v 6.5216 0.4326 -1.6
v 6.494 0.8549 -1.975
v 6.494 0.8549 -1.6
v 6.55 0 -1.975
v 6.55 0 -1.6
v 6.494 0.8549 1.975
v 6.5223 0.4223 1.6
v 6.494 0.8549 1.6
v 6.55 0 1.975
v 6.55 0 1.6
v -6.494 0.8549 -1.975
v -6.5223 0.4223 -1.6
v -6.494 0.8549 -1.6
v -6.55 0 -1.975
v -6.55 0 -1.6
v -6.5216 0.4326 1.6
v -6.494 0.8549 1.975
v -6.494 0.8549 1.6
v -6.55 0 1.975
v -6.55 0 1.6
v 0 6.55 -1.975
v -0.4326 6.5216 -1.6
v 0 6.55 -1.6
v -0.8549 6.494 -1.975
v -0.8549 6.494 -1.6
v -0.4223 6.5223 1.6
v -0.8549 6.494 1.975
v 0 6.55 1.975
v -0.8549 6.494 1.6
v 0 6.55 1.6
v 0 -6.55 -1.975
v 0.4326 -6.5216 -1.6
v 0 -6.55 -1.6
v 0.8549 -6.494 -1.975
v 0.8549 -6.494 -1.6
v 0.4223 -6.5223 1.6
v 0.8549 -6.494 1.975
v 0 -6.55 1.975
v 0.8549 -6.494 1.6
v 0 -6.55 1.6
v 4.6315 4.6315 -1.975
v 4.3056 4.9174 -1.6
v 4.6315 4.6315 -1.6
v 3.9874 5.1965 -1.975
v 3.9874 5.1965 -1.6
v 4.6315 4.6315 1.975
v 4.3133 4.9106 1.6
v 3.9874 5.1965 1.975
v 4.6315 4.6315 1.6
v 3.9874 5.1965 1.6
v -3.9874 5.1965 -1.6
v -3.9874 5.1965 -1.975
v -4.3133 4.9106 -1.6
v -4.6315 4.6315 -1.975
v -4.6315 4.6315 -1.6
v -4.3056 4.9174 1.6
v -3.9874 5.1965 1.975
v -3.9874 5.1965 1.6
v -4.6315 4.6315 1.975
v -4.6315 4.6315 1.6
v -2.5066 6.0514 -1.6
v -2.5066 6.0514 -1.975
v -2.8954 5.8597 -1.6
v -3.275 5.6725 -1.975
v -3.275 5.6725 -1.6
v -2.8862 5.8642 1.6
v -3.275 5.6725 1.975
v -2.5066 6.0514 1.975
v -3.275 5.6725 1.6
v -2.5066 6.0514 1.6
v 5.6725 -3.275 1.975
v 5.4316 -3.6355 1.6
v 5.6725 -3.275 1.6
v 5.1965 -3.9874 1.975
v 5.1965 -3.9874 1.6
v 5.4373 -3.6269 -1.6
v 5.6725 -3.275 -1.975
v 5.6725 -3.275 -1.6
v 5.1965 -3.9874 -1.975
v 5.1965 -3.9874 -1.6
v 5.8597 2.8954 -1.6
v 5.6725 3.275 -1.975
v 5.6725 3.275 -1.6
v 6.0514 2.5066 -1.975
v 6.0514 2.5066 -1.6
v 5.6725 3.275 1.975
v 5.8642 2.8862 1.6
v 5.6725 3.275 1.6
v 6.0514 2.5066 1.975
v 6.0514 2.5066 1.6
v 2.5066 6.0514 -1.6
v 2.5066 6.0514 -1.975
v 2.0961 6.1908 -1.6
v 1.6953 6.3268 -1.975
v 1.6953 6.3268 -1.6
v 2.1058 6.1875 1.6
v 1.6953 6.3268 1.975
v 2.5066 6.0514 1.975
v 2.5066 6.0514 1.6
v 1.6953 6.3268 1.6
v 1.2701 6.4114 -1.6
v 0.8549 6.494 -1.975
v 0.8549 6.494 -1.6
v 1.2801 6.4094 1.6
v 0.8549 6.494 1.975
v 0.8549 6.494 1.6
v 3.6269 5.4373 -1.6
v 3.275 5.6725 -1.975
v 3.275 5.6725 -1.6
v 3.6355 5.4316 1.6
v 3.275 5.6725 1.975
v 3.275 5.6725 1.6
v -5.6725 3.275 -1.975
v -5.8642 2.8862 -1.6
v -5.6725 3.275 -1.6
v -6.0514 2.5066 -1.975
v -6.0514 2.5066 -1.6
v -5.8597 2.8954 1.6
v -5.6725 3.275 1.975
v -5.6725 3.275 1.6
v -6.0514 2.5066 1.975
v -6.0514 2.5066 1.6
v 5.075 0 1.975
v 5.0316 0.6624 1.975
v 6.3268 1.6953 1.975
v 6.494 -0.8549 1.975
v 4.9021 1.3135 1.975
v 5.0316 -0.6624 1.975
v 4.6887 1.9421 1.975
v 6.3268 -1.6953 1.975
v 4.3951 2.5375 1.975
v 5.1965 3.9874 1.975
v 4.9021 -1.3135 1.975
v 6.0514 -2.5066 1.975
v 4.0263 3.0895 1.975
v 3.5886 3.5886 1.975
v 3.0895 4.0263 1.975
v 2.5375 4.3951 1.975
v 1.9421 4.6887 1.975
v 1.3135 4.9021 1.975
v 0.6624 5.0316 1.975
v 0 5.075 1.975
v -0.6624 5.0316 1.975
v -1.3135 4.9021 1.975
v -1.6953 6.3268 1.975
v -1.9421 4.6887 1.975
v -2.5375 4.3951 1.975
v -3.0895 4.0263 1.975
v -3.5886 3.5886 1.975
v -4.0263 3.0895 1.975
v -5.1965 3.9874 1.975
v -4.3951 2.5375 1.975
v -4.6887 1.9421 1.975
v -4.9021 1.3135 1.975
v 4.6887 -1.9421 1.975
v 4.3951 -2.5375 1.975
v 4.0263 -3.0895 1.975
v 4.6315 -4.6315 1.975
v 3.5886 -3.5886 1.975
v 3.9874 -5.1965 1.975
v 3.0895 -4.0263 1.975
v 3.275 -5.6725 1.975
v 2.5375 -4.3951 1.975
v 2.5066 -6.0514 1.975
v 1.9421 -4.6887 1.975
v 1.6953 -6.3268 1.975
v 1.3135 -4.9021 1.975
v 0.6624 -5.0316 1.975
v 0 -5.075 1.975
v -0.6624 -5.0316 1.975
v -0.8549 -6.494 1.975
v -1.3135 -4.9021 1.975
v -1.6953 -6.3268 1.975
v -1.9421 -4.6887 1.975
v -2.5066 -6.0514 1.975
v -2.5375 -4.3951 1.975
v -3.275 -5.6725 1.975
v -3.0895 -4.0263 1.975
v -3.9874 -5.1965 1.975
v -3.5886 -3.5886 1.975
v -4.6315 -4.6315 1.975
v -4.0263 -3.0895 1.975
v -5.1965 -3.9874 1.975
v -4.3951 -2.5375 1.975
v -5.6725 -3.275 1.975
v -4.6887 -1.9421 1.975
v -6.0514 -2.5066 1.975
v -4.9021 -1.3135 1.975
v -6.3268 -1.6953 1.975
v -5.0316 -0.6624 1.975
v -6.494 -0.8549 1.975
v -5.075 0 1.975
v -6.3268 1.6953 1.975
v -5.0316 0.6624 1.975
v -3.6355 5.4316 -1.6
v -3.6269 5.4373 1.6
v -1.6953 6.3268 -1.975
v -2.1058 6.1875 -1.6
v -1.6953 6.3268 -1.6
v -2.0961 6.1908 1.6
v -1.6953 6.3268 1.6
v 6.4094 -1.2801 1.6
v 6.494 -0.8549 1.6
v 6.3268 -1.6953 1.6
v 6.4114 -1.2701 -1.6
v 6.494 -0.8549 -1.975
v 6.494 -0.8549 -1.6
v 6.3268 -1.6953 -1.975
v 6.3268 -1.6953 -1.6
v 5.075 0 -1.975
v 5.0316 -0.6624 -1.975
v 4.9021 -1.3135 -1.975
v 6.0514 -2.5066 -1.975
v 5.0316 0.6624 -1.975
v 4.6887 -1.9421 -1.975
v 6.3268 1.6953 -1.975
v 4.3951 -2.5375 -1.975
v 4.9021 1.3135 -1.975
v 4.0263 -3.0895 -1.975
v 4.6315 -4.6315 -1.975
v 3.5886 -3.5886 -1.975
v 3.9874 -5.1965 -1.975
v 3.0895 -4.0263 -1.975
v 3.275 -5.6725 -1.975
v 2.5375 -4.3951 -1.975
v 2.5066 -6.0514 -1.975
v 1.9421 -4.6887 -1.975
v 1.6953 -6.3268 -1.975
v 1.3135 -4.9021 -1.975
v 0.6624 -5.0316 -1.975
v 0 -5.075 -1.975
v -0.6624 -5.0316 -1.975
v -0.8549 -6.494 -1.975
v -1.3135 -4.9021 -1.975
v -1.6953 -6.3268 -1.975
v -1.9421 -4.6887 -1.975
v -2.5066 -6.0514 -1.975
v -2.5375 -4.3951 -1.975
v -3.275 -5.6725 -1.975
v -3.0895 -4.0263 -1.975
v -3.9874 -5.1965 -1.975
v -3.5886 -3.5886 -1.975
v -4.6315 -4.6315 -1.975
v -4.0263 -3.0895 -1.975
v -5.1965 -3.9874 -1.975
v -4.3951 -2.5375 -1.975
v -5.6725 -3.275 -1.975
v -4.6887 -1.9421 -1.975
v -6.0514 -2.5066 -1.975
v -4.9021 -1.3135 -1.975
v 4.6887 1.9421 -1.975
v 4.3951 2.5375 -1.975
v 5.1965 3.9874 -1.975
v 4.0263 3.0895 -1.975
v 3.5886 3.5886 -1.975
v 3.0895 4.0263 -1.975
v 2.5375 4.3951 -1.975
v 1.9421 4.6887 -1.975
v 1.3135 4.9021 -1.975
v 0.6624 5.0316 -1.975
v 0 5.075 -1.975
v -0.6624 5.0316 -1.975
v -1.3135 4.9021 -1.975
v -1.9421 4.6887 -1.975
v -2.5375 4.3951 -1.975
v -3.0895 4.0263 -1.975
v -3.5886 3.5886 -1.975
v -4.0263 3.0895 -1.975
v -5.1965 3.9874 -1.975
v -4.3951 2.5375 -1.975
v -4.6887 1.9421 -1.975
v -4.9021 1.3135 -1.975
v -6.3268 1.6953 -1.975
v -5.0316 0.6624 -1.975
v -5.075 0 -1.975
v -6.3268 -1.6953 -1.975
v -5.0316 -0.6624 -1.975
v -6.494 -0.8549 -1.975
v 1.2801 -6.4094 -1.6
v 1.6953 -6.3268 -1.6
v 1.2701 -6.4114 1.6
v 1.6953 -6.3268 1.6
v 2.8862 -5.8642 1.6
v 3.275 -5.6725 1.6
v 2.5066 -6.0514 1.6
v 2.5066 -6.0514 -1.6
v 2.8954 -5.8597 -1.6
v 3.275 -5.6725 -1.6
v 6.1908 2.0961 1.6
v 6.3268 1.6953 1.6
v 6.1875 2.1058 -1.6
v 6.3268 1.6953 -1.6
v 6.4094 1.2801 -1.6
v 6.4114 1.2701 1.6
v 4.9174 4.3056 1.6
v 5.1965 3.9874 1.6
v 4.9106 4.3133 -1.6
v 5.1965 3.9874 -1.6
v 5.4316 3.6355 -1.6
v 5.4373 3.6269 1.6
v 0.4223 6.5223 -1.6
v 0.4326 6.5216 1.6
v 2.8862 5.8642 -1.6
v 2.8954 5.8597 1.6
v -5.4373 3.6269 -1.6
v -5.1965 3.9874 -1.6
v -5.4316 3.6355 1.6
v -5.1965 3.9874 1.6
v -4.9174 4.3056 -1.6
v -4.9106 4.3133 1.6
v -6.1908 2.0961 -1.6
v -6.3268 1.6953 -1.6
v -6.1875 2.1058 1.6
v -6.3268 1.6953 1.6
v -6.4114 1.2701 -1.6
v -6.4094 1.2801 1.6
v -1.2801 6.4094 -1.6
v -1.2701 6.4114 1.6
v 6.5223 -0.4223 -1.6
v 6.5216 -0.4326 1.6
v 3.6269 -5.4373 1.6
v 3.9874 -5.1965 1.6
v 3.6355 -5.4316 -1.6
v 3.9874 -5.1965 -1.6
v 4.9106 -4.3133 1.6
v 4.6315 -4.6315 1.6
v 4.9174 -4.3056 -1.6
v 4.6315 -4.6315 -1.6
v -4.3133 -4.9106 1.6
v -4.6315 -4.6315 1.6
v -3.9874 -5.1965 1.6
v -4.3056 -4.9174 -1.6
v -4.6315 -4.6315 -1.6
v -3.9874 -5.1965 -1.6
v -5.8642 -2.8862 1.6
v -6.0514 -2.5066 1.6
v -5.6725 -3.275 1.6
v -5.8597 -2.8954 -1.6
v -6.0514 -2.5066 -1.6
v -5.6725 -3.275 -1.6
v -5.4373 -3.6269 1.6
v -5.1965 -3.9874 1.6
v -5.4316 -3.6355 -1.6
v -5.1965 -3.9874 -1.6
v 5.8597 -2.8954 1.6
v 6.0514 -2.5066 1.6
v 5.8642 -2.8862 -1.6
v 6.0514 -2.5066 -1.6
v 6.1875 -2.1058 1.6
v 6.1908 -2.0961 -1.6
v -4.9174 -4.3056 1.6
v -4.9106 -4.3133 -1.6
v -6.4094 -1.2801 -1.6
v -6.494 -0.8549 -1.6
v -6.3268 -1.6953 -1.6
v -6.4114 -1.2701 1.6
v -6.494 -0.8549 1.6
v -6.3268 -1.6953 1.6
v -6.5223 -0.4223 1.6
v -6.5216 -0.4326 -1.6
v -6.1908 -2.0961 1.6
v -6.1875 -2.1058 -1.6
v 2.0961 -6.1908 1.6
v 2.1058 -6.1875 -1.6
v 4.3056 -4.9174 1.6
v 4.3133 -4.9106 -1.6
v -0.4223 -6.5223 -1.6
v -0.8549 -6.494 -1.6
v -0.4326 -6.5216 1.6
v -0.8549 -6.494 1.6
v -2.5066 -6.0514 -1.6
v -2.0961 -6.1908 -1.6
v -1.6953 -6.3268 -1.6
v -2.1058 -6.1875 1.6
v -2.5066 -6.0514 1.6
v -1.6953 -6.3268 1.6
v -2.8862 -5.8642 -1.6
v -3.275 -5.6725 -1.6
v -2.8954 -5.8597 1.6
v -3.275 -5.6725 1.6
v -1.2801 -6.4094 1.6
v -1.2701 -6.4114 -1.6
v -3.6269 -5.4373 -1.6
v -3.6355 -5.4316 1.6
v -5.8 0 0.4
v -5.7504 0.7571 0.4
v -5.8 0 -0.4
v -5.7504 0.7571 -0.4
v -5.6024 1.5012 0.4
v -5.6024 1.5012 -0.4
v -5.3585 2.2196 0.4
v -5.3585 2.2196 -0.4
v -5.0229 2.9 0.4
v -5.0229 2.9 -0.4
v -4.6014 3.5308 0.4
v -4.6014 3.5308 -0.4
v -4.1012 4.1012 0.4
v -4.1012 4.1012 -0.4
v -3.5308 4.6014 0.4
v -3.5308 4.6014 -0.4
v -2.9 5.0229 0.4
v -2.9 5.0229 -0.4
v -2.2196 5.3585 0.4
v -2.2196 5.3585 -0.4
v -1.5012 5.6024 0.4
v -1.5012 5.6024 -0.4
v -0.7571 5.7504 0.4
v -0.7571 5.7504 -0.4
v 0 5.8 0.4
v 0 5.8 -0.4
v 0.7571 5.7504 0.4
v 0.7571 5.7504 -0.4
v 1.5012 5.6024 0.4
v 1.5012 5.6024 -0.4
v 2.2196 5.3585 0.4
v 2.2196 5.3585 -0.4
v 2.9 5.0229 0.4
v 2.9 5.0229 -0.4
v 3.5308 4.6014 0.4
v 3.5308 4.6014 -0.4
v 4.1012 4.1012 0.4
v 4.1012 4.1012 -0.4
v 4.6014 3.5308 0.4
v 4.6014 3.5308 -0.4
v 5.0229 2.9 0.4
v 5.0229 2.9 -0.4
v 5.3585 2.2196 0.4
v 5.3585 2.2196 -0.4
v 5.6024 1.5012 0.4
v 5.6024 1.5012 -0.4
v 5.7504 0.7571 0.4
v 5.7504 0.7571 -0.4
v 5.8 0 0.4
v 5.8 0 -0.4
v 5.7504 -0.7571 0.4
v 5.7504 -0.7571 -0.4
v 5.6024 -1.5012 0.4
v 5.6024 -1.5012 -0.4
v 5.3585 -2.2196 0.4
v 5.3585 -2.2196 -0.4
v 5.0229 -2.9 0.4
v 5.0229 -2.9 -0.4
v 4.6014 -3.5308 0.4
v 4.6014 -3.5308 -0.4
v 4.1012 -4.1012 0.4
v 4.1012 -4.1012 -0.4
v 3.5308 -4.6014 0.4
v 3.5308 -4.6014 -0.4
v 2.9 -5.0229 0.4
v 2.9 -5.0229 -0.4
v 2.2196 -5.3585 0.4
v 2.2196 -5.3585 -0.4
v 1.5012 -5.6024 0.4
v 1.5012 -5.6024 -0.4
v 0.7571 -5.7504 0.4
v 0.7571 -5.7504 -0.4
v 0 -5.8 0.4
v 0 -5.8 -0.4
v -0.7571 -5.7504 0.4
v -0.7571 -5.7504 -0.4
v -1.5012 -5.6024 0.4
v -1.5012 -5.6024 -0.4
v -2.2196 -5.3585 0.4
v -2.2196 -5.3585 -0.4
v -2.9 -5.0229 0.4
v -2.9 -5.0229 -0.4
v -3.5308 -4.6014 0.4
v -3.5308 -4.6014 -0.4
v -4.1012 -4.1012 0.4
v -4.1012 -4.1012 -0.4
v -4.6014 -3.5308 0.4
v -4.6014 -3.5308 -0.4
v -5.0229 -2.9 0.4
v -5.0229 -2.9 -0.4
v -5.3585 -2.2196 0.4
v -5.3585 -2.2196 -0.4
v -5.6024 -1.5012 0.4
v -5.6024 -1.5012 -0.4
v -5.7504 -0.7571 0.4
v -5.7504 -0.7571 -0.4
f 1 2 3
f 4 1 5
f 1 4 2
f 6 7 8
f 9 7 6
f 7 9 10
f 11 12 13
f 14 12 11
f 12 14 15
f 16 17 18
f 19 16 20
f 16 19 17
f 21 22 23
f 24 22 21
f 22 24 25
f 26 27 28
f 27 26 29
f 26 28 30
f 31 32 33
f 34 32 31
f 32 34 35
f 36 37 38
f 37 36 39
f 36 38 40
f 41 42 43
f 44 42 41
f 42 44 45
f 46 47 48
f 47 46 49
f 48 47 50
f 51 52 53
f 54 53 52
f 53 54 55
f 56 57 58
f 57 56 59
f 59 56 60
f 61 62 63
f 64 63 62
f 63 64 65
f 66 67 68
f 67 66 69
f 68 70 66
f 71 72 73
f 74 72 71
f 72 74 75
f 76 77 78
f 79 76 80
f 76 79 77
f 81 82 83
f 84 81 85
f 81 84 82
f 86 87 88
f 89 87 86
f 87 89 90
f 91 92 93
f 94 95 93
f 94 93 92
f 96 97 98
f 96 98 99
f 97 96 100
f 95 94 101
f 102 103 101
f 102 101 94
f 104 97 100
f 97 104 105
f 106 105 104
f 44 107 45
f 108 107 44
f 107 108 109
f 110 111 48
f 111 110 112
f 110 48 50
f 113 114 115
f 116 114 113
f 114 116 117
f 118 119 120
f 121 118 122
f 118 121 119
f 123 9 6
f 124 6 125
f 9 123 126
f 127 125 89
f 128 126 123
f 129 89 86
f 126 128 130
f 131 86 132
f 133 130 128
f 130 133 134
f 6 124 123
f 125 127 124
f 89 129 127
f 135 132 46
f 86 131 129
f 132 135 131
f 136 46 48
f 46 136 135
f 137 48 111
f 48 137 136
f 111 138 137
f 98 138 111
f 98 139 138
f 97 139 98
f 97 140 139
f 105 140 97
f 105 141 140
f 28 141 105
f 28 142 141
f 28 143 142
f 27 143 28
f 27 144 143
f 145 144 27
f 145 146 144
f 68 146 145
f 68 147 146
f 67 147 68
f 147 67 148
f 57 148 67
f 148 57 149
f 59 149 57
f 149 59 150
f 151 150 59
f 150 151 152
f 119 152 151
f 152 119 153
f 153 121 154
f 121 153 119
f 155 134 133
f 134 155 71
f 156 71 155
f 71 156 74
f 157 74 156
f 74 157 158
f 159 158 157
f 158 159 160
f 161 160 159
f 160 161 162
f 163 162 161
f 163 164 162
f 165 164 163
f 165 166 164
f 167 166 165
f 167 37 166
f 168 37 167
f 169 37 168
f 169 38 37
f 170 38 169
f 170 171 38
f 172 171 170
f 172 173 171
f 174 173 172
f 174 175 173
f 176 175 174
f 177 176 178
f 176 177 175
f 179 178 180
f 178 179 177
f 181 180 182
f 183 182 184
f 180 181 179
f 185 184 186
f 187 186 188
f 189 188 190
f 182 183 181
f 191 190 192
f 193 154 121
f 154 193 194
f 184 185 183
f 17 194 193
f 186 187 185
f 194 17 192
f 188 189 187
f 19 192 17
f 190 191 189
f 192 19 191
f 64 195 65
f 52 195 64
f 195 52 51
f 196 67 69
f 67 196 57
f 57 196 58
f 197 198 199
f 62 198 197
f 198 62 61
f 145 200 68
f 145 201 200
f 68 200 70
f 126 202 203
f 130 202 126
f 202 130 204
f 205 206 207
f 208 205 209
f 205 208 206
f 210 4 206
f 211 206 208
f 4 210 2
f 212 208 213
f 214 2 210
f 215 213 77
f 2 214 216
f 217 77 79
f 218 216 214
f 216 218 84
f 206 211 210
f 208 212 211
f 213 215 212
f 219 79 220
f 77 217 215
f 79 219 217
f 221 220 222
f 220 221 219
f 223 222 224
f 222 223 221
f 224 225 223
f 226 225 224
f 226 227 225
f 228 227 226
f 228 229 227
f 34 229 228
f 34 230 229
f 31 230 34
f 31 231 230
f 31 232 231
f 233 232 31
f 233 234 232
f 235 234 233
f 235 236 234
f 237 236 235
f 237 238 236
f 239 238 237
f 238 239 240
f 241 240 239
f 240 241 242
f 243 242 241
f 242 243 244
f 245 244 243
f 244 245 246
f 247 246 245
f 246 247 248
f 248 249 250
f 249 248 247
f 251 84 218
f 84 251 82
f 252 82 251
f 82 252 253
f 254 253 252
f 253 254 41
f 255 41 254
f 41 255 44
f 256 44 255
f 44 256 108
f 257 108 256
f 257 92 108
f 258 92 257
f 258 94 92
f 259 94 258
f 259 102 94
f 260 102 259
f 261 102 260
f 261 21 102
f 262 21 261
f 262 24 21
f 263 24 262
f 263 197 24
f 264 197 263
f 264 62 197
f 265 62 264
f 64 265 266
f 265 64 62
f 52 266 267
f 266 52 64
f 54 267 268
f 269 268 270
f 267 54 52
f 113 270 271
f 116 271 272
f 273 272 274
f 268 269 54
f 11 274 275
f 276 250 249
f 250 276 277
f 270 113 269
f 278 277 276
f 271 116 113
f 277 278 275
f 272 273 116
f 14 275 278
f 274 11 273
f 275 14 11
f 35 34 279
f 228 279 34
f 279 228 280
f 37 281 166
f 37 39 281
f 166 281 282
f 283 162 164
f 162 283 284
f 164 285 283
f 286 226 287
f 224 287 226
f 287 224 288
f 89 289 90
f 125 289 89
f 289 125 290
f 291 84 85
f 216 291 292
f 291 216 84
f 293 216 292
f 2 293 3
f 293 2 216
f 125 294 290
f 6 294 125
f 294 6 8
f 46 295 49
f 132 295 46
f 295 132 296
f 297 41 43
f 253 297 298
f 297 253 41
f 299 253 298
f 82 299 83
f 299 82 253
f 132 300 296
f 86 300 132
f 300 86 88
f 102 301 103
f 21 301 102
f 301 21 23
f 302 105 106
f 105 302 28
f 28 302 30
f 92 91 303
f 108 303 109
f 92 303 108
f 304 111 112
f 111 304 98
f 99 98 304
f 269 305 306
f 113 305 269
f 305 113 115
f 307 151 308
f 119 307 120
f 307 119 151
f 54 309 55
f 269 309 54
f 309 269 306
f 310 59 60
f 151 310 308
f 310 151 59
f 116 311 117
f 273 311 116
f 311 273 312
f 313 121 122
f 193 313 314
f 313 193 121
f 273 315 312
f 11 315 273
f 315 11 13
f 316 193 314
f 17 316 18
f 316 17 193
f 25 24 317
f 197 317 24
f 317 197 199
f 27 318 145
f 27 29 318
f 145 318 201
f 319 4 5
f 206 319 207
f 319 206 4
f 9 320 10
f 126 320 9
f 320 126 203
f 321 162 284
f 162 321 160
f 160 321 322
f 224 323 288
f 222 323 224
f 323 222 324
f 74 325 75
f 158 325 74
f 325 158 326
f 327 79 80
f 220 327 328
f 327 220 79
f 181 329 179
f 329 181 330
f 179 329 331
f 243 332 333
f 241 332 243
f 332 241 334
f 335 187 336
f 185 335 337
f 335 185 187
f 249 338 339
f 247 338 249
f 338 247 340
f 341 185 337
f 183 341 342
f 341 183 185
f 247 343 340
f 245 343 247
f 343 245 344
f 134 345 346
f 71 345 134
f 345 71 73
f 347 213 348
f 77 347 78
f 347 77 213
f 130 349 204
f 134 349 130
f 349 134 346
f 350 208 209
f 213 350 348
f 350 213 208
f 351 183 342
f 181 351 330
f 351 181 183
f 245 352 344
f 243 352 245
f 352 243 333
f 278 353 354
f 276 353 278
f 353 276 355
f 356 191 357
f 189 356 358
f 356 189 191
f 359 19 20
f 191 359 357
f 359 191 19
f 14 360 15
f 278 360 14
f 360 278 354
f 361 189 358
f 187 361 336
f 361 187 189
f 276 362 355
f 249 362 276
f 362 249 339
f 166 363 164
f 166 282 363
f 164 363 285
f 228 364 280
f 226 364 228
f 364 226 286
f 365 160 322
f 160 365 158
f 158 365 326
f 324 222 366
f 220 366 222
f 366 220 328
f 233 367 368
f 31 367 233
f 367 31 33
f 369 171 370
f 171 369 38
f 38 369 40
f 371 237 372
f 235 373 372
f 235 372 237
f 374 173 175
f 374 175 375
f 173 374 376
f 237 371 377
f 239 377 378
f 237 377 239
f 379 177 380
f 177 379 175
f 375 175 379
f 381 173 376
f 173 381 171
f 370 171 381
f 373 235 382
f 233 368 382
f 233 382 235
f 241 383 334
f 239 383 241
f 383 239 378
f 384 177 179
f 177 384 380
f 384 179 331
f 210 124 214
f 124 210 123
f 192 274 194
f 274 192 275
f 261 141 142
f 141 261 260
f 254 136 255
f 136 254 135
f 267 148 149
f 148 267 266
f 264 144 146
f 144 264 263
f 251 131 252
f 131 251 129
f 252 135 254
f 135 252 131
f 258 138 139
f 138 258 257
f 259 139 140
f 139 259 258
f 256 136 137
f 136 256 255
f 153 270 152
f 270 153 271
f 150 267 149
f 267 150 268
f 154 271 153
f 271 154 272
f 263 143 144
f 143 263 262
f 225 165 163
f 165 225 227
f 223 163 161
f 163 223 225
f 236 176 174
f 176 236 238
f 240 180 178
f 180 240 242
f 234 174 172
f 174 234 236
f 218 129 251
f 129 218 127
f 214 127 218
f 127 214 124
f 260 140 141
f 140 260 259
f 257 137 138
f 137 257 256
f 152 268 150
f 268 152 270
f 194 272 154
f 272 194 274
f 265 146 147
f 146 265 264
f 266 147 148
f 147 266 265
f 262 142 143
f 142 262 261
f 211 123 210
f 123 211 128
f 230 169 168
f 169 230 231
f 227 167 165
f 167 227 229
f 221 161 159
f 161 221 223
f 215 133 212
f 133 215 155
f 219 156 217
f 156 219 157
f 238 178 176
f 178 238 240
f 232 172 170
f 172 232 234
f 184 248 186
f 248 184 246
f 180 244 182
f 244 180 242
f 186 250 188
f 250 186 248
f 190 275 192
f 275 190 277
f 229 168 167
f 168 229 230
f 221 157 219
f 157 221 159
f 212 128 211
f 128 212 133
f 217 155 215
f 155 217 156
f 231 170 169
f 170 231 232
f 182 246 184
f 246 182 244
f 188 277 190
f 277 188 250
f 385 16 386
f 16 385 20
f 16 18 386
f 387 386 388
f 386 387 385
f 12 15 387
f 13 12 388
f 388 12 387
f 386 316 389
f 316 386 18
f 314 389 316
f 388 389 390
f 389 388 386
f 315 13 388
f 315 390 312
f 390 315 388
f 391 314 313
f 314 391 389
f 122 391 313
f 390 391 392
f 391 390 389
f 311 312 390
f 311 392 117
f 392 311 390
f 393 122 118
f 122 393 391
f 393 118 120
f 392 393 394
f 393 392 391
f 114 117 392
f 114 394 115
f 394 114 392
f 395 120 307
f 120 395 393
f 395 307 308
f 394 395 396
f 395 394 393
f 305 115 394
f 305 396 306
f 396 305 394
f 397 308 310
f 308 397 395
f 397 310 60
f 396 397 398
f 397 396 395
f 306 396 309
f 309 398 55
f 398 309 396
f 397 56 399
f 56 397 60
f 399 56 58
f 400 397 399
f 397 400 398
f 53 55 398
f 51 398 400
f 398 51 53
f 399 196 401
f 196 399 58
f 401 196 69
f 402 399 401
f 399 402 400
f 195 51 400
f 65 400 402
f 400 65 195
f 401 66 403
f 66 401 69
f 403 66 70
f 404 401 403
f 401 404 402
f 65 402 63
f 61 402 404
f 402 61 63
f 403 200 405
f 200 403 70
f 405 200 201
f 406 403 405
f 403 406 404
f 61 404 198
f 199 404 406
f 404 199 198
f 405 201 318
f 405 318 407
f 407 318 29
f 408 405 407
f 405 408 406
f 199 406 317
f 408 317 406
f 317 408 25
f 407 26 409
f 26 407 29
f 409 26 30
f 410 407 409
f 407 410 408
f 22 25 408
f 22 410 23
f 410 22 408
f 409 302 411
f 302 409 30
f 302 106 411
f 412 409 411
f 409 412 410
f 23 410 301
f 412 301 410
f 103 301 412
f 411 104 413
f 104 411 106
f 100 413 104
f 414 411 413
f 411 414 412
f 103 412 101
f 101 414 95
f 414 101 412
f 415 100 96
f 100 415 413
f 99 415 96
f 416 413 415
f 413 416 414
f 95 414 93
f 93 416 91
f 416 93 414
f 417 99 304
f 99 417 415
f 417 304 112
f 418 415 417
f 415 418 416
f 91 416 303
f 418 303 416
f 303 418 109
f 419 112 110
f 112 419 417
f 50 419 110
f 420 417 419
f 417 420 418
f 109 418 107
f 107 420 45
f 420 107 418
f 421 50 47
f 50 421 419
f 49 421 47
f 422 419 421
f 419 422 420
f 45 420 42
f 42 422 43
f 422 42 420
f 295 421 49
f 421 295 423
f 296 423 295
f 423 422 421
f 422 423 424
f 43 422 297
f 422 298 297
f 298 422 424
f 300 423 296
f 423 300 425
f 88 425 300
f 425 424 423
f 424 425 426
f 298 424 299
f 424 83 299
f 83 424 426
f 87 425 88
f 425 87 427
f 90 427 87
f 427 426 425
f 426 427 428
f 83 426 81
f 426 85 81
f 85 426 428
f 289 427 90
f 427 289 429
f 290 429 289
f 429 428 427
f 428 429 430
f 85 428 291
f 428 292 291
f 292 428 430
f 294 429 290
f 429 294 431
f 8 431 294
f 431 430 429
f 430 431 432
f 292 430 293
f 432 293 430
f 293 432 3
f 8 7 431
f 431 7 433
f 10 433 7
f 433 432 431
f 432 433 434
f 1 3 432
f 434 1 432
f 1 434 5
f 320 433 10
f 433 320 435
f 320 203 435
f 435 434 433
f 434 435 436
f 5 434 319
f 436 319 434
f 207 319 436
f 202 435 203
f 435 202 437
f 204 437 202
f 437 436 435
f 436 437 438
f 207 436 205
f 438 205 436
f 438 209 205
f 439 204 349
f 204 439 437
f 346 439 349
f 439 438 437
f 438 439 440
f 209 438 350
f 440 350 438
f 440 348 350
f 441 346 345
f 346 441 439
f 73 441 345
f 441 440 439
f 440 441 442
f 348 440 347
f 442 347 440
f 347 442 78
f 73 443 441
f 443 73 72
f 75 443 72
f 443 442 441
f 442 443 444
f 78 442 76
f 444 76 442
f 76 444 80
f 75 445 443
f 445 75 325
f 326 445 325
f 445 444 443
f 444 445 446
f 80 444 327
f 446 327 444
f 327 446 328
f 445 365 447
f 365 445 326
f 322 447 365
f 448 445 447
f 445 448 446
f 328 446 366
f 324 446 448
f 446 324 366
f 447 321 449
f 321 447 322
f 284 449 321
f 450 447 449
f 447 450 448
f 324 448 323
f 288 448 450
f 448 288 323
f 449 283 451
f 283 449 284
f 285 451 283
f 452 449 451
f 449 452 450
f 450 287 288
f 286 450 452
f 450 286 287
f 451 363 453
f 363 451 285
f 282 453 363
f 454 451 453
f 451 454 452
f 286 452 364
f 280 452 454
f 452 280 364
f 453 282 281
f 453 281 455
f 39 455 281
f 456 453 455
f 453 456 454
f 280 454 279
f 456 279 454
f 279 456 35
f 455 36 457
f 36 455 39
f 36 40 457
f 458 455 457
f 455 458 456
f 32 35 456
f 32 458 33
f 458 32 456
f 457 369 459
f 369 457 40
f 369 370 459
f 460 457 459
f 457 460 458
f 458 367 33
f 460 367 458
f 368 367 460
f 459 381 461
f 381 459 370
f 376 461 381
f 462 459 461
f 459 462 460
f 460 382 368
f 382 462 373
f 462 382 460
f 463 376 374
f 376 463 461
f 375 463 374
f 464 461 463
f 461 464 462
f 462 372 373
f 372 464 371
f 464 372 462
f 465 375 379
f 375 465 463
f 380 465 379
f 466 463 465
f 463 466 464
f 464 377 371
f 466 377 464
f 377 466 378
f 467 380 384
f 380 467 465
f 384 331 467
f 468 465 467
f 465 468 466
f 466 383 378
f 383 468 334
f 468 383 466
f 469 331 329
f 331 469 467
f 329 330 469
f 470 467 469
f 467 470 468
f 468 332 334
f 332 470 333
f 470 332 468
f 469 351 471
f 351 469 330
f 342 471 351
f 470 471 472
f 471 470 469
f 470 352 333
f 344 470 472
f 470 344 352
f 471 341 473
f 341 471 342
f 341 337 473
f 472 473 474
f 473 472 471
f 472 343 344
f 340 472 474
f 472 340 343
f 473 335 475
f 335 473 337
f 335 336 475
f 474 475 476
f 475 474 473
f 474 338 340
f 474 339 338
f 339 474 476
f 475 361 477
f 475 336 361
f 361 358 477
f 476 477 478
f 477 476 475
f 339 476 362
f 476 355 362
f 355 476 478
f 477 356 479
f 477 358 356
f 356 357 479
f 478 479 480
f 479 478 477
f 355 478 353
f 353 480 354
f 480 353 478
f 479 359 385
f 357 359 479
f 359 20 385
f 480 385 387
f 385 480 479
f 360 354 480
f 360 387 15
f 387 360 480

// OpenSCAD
$fn=48;

inner_d = 10.15;
small_d = 11.1;
big_d = 13.1;

difference(){
  cylinder(d=big_d, h=3.95, center=true);
  cylinder(d=inner_d, h=3.95+2, center=true);
  U_r = 2.0;
  rotate_extrude()
    translate([U_r + small_d/2, 0, 0]){
      scale([1,1.6])
      difference(){
        rotate([0,0,45])
          square(U_r*sqrt(2), center=true);
        translate([-10-U_r+0.25, -5])
          square([10, 10]);
      }
    }
  //translate([-50,-50,0])
  //  cube(100);
}
